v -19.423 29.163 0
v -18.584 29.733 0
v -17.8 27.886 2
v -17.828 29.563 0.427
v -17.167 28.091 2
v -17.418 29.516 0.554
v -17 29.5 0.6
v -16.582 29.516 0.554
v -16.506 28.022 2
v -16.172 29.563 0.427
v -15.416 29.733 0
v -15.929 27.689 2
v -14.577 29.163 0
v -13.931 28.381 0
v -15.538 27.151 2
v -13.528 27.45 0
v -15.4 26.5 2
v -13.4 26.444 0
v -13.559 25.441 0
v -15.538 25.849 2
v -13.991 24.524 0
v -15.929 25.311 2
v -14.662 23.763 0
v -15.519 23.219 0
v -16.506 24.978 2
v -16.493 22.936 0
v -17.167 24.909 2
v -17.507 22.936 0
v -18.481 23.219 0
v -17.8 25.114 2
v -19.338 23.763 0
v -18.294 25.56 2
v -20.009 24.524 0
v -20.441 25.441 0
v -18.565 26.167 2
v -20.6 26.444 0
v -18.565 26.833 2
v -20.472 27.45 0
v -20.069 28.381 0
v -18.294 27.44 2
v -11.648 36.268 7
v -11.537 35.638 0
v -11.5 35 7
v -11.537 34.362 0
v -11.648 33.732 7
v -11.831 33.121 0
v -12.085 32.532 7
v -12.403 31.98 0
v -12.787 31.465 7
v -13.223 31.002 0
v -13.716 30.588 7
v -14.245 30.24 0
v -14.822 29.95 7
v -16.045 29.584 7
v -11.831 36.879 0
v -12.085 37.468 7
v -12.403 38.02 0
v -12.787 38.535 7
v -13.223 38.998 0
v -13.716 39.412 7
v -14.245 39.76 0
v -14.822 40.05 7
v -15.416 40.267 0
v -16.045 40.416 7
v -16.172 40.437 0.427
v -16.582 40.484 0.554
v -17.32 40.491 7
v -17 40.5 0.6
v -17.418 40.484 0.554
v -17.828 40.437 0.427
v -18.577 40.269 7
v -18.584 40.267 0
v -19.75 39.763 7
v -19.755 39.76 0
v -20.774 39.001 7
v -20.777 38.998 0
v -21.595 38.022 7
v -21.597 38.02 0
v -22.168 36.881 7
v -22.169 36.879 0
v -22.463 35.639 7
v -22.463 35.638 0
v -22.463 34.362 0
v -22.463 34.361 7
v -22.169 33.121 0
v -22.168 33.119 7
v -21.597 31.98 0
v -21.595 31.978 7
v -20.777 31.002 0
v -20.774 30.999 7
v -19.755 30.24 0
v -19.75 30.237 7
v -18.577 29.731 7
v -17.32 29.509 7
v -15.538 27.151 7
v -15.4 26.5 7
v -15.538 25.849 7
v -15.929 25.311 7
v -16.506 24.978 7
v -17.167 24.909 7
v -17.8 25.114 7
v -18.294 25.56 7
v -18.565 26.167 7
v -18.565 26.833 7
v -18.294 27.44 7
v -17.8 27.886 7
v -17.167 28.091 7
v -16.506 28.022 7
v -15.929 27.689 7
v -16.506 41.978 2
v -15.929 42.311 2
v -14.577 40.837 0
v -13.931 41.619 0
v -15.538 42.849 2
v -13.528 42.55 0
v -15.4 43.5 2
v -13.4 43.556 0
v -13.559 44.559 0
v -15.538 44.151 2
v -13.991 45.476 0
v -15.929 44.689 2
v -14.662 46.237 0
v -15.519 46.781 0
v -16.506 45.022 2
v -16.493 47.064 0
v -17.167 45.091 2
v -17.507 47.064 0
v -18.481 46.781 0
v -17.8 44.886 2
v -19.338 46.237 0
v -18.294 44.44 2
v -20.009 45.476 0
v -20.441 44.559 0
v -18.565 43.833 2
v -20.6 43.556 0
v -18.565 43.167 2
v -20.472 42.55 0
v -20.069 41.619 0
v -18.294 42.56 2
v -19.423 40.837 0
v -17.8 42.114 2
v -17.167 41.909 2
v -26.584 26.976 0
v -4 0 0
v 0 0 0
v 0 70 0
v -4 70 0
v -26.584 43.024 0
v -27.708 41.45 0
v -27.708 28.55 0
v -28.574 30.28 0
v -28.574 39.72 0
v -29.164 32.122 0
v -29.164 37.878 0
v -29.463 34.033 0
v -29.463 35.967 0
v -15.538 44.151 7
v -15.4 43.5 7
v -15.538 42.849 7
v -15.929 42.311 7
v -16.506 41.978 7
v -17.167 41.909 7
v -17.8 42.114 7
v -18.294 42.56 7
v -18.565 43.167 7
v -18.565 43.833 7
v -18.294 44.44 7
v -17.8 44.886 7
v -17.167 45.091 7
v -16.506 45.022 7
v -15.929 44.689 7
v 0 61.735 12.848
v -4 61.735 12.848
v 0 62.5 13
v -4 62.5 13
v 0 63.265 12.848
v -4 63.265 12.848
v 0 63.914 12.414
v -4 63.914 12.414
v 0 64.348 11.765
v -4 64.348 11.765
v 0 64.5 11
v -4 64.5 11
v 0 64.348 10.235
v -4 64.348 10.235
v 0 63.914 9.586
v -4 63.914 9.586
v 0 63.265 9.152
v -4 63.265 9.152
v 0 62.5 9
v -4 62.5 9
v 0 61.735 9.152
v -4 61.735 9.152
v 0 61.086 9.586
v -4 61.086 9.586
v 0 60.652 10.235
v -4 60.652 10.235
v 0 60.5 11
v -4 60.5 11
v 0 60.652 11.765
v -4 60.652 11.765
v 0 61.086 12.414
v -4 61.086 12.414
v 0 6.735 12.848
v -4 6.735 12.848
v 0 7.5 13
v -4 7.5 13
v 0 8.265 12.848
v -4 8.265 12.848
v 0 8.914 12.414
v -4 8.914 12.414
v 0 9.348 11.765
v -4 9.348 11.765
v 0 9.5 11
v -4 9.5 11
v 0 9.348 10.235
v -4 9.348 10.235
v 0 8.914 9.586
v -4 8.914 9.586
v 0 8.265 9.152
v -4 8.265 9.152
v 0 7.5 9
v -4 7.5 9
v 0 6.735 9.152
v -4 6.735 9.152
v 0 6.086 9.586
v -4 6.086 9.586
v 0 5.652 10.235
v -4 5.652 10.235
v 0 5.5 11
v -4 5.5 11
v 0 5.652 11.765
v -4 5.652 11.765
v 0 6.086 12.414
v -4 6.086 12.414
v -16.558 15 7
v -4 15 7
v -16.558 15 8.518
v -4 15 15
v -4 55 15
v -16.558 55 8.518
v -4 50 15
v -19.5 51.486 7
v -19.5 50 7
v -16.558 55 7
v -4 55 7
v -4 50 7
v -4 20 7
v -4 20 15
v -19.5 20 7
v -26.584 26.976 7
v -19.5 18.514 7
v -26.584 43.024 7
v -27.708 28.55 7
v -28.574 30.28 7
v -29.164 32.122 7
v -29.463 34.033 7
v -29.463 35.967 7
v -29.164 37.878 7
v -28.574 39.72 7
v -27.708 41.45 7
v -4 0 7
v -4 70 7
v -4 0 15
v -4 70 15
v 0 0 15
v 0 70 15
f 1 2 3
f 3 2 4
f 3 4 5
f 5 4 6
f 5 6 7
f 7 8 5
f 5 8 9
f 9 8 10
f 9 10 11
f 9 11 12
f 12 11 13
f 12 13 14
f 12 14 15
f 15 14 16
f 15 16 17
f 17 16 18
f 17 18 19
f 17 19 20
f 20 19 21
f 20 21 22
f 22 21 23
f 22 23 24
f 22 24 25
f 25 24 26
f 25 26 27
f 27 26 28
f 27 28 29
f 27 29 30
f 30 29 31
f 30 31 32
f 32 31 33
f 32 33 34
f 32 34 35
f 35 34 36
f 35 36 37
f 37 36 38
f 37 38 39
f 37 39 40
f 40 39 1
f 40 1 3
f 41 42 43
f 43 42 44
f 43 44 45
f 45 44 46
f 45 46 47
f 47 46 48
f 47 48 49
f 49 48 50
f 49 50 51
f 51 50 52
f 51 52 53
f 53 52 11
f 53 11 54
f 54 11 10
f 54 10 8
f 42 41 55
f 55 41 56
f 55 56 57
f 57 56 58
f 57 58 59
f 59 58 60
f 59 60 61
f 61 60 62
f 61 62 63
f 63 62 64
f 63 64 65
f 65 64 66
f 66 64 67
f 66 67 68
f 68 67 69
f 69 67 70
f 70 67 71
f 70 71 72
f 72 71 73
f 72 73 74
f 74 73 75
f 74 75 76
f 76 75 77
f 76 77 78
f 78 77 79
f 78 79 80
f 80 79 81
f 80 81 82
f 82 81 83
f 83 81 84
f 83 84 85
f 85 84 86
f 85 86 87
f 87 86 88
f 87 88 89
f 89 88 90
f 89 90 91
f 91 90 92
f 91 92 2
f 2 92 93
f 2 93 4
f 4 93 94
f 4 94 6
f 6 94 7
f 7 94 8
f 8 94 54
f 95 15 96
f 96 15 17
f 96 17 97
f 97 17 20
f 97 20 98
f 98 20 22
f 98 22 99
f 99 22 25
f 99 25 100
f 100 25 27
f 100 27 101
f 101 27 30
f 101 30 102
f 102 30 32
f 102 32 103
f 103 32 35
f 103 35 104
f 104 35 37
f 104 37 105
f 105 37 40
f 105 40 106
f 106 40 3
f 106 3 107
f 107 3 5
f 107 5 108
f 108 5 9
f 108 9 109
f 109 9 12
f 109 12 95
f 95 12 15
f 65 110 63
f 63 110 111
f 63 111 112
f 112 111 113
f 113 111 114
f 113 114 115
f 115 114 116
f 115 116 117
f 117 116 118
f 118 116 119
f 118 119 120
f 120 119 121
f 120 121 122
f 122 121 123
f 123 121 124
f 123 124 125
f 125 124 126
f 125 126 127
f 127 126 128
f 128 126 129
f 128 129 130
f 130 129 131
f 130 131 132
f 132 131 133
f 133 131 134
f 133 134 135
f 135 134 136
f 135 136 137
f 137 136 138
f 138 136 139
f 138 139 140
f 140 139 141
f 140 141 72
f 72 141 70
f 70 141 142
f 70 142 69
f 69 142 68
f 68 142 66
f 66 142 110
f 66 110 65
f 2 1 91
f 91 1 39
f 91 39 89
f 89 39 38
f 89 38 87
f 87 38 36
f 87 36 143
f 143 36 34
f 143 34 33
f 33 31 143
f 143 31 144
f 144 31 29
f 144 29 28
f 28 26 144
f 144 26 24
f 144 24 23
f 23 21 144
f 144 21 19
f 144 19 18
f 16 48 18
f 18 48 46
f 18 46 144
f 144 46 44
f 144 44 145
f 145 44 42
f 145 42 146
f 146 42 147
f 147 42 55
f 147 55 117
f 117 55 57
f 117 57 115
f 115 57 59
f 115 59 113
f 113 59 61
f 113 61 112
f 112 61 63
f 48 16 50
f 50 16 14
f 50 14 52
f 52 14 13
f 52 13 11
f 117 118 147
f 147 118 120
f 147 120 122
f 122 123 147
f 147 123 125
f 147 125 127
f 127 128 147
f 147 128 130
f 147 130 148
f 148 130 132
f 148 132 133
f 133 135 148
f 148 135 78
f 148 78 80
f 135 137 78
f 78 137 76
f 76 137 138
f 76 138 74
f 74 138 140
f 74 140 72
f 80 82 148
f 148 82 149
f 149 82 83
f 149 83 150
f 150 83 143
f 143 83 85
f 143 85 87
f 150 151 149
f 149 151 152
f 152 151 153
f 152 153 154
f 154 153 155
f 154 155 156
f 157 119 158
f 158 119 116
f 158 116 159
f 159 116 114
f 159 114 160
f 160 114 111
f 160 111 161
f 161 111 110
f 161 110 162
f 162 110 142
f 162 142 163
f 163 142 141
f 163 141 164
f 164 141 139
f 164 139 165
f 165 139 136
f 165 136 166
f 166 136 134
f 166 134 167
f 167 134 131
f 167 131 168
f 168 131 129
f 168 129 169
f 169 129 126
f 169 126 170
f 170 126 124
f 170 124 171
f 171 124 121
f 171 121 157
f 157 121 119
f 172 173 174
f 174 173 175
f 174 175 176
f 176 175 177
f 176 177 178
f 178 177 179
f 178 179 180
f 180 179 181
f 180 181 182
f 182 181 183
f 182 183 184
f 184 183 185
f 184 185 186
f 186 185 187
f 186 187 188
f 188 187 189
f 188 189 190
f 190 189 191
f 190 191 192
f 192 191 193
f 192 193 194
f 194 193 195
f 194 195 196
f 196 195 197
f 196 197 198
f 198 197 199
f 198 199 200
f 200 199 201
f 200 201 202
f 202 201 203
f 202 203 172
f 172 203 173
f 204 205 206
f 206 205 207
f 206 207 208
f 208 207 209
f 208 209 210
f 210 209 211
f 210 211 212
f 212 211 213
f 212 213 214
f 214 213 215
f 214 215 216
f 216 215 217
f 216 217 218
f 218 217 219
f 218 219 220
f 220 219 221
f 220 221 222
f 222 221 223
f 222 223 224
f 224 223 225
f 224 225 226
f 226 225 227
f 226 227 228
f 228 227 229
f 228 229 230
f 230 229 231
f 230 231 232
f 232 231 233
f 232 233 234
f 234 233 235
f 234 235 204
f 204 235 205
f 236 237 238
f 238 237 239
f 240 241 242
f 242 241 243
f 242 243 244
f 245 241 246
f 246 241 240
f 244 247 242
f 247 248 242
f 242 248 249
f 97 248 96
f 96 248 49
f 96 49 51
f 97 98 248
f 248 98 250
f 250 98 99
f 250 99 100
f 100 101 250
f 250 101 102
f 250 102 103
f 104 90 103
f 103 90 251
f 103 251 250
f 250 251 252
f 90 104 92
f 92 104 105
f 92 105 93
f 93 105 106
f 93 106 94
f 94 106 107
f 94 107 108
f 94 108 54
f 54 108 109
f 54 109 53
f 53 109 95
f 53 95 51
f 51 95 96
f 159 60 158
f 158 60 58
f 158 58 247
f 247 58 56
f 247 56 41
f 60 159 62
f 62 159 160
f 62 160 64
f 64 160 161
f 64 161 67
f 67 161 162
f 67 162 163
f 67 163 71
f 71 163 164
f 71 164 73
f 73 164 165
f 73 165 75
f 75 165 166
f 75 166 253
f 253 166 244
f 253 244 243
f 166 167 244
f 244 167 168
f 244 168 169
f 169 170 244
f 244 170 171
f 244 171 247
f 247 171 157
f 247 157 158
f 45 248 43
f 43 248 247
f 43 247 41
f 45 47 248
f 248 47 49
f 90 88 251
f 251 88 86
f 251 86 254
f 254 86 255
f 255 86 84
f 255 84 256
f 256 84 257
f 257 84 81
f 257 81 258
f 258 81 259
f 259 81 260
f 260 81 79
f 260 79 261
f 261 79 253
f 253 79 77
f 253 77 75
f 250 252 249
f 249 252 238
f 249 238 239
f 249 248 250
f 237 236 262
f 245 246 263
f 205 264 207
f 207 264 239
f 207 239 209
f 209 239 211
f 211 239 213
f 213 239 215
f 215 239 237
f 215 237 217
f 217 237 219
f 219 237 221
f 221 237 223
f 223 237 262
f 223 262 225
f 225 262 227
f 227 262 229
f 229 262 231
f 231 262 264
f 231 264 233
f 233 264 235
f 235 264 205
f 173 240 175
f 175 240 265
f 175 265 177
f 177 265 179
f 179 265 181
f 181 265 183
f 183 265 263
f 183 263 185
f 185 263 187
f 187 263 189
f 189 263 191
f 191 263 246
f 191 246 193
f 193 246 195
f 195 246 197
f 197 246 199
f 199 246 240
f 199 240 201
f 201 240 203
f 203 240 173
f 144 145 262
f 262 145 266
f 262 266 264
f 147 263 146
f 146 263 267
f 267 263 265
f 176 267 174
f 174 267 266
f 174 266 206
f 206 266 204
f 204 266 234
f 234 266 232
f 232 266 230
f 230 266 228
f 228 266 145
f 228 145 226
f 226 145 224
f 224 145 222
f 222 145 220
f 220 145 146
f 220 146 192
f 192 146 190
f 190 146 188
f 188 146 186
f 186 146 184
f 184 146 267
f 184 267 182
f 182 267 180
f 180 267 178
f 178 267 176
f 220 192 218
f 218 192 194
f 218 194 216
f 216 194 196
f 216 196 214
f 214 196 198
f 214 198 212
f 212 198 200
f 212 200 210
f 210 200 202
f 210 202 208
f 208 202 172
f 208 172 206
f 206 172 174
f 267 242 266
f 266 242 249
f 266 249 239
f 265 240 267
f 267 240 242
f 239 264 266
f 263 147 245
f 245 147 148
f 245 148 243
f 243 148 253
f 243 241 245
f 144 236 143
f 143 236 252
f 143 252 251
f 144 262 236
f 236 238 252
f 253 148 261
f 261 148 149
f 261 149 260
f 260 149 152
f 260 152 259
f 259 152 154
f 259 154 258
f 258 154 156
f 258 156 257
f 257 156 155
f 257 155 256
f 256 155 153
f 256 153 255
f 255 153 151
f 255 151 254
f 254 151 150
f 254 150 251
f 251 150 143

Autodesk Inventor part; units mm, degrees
sketch "Skizze1" plane through (0, 0, 0) normal (0, 0, 1) x (1, 0, 0)
  circle A0 centre (-17, 35) radius 12.5
  line L0 (0, 70) -> (0, 0)
  circle A1 centre (-17, 26.5) radius 1.6
  circle A2 centre (-17, 43.5) radius 1.6
  circle A3 centre (-17, 35) radius 5.5
  line L1 (3, 0) -> (0, 0)
  line L2 (0, 70) -> (-4, 70)
  line L3 (-4, 70) -> (-4, 0)
  line L4 (-4, 0) -> (0, 0)
  line L5 (0, 0) -> (0, 70)
  line L6 (-26.5845, 43.0242) -> (-4, 70)
  line L7 (-26.5845, 26.9758) -> (-4, 0)
  line L8 (0, 0) -> (-41.7952, 0)
  line L9 (-41.7952, 0) -> (-41.7952, 70)
  line L10 (-41.7952, 70) -> (0, 70)
  line L11 (0, 70) -> (0, 0)
  point P0 (0, 0)
  point P1 (0, 55)
  dimension "d0" = 25
  dimension "d2" = 8.5
  dimension "d3" = 17
  dimension "d6" = 3.2
  dimension "d7" = 3.2
  dimension "d8" = 11
  dimension "d10" = 70
  dimension "d11" = 17
  dimension "d23" = 4
extrude "Extrusion1" add sketch "Skizze1" along normal blind 7 contours A0 | A0 L6 L3 L7
ref_plane "Arbeitsebene1" through (0, 0, 39.5) normal (0, 0, 1) x (1, 0, 0)
extrude "Extrusion8" add sketch "Skizze1" along normal blind 15 contours L2 L0 L4 L3
ref_plane "Arbeitsebene2" through (-4, 50, 0) normal (0, 1, 0) x (1, 0, 0)
ref_plane "Arbeitsebene3" through (-4, 20, 0) normal (0, -1, 0) x (1, 0, 0)
sketch "Skizze8" plane through (-4, 50, 0) normal (0, 1, 0) x (1, 0, 0)
  line L0 (0, -15) -> (4, -15) projected
  line L1 (0, -15) -> (-15.5, -7)
  line L2 (-15.5, -7) -> (0, -7)
  line L3 (0, -7) -> (0, -15)
  line L4 (0, -7) -> (-22.5845, -7) projected
  point P0 (4, 0)
  dimension "d59" = 15.5
sketch "Skizze9" plane through (-4, 20, 0) normal (0, -1, 0) x (1, 0, 0)
  line L0 (0, 15) -> (-15.5, 7) projected
  line L1 (0, 7) -> (0, 15) projected
  line L2 (-15.5, 7) -> (0, 7) projected
  line L3 (-15.5, 7) -> (0, 15)
  line L4 (-22.5845, 7) -> (0, 7) projected
  line L5 (0, 7) -> (0, 15)
  line L6 (-15.5, 7) -> (0, 7)
  point P0 (4, 0)
extrude "Extrusion9" add sketch "Skizze9" along normal blind 5
extrude "Extrusion10" add sketch "Skizze8" along normal blind 5
extrude "Extrusion11" cut sketch "Skizze1" along normal blind 20 contours A0 L7 L8 L9 L10 L6
sketch "Skizze10" plane through (-4, 0, 7) normal (-1, 0, 0) x (0, 0, 1)
  circle A0 centre (4, 7.5) radius 2
  circle A1 centre (4, 62.5) radius 2
  line L0 (0, 70) -> (8, 70) projected
  line L1 (1.5184, 55) -> (8, 55) projected
  line L2 (0, 0) -> (8, 0) projected
  line L3 (8, 15) -> (8, 0) projected
  line L4 (8, 70) -> (8, 55) projected
  line L5 (-7, 26.9758) -> (-7, 0) projected
  dimension "d67" = 4
  dimension "d68" = 4
  dimension "d69" = 7.5
  dimension "d71" = 7.5
  dimension "d72" = 4
  dimension "d73" = 4
  dimension "d76" = 11
extrude "Extrusion12" cut sketch "Skizze10" against normal blind 4
chamfer "Fase1" distance 2 angle 45 2 edges at (-18.6, 43.5, 0) (-18.6, 26.5, 0)
equation "\"d6\" = d7"
equation "\"d68\" = d67"
equation "\"d71\" = d69"
properties part number "motor mount"
